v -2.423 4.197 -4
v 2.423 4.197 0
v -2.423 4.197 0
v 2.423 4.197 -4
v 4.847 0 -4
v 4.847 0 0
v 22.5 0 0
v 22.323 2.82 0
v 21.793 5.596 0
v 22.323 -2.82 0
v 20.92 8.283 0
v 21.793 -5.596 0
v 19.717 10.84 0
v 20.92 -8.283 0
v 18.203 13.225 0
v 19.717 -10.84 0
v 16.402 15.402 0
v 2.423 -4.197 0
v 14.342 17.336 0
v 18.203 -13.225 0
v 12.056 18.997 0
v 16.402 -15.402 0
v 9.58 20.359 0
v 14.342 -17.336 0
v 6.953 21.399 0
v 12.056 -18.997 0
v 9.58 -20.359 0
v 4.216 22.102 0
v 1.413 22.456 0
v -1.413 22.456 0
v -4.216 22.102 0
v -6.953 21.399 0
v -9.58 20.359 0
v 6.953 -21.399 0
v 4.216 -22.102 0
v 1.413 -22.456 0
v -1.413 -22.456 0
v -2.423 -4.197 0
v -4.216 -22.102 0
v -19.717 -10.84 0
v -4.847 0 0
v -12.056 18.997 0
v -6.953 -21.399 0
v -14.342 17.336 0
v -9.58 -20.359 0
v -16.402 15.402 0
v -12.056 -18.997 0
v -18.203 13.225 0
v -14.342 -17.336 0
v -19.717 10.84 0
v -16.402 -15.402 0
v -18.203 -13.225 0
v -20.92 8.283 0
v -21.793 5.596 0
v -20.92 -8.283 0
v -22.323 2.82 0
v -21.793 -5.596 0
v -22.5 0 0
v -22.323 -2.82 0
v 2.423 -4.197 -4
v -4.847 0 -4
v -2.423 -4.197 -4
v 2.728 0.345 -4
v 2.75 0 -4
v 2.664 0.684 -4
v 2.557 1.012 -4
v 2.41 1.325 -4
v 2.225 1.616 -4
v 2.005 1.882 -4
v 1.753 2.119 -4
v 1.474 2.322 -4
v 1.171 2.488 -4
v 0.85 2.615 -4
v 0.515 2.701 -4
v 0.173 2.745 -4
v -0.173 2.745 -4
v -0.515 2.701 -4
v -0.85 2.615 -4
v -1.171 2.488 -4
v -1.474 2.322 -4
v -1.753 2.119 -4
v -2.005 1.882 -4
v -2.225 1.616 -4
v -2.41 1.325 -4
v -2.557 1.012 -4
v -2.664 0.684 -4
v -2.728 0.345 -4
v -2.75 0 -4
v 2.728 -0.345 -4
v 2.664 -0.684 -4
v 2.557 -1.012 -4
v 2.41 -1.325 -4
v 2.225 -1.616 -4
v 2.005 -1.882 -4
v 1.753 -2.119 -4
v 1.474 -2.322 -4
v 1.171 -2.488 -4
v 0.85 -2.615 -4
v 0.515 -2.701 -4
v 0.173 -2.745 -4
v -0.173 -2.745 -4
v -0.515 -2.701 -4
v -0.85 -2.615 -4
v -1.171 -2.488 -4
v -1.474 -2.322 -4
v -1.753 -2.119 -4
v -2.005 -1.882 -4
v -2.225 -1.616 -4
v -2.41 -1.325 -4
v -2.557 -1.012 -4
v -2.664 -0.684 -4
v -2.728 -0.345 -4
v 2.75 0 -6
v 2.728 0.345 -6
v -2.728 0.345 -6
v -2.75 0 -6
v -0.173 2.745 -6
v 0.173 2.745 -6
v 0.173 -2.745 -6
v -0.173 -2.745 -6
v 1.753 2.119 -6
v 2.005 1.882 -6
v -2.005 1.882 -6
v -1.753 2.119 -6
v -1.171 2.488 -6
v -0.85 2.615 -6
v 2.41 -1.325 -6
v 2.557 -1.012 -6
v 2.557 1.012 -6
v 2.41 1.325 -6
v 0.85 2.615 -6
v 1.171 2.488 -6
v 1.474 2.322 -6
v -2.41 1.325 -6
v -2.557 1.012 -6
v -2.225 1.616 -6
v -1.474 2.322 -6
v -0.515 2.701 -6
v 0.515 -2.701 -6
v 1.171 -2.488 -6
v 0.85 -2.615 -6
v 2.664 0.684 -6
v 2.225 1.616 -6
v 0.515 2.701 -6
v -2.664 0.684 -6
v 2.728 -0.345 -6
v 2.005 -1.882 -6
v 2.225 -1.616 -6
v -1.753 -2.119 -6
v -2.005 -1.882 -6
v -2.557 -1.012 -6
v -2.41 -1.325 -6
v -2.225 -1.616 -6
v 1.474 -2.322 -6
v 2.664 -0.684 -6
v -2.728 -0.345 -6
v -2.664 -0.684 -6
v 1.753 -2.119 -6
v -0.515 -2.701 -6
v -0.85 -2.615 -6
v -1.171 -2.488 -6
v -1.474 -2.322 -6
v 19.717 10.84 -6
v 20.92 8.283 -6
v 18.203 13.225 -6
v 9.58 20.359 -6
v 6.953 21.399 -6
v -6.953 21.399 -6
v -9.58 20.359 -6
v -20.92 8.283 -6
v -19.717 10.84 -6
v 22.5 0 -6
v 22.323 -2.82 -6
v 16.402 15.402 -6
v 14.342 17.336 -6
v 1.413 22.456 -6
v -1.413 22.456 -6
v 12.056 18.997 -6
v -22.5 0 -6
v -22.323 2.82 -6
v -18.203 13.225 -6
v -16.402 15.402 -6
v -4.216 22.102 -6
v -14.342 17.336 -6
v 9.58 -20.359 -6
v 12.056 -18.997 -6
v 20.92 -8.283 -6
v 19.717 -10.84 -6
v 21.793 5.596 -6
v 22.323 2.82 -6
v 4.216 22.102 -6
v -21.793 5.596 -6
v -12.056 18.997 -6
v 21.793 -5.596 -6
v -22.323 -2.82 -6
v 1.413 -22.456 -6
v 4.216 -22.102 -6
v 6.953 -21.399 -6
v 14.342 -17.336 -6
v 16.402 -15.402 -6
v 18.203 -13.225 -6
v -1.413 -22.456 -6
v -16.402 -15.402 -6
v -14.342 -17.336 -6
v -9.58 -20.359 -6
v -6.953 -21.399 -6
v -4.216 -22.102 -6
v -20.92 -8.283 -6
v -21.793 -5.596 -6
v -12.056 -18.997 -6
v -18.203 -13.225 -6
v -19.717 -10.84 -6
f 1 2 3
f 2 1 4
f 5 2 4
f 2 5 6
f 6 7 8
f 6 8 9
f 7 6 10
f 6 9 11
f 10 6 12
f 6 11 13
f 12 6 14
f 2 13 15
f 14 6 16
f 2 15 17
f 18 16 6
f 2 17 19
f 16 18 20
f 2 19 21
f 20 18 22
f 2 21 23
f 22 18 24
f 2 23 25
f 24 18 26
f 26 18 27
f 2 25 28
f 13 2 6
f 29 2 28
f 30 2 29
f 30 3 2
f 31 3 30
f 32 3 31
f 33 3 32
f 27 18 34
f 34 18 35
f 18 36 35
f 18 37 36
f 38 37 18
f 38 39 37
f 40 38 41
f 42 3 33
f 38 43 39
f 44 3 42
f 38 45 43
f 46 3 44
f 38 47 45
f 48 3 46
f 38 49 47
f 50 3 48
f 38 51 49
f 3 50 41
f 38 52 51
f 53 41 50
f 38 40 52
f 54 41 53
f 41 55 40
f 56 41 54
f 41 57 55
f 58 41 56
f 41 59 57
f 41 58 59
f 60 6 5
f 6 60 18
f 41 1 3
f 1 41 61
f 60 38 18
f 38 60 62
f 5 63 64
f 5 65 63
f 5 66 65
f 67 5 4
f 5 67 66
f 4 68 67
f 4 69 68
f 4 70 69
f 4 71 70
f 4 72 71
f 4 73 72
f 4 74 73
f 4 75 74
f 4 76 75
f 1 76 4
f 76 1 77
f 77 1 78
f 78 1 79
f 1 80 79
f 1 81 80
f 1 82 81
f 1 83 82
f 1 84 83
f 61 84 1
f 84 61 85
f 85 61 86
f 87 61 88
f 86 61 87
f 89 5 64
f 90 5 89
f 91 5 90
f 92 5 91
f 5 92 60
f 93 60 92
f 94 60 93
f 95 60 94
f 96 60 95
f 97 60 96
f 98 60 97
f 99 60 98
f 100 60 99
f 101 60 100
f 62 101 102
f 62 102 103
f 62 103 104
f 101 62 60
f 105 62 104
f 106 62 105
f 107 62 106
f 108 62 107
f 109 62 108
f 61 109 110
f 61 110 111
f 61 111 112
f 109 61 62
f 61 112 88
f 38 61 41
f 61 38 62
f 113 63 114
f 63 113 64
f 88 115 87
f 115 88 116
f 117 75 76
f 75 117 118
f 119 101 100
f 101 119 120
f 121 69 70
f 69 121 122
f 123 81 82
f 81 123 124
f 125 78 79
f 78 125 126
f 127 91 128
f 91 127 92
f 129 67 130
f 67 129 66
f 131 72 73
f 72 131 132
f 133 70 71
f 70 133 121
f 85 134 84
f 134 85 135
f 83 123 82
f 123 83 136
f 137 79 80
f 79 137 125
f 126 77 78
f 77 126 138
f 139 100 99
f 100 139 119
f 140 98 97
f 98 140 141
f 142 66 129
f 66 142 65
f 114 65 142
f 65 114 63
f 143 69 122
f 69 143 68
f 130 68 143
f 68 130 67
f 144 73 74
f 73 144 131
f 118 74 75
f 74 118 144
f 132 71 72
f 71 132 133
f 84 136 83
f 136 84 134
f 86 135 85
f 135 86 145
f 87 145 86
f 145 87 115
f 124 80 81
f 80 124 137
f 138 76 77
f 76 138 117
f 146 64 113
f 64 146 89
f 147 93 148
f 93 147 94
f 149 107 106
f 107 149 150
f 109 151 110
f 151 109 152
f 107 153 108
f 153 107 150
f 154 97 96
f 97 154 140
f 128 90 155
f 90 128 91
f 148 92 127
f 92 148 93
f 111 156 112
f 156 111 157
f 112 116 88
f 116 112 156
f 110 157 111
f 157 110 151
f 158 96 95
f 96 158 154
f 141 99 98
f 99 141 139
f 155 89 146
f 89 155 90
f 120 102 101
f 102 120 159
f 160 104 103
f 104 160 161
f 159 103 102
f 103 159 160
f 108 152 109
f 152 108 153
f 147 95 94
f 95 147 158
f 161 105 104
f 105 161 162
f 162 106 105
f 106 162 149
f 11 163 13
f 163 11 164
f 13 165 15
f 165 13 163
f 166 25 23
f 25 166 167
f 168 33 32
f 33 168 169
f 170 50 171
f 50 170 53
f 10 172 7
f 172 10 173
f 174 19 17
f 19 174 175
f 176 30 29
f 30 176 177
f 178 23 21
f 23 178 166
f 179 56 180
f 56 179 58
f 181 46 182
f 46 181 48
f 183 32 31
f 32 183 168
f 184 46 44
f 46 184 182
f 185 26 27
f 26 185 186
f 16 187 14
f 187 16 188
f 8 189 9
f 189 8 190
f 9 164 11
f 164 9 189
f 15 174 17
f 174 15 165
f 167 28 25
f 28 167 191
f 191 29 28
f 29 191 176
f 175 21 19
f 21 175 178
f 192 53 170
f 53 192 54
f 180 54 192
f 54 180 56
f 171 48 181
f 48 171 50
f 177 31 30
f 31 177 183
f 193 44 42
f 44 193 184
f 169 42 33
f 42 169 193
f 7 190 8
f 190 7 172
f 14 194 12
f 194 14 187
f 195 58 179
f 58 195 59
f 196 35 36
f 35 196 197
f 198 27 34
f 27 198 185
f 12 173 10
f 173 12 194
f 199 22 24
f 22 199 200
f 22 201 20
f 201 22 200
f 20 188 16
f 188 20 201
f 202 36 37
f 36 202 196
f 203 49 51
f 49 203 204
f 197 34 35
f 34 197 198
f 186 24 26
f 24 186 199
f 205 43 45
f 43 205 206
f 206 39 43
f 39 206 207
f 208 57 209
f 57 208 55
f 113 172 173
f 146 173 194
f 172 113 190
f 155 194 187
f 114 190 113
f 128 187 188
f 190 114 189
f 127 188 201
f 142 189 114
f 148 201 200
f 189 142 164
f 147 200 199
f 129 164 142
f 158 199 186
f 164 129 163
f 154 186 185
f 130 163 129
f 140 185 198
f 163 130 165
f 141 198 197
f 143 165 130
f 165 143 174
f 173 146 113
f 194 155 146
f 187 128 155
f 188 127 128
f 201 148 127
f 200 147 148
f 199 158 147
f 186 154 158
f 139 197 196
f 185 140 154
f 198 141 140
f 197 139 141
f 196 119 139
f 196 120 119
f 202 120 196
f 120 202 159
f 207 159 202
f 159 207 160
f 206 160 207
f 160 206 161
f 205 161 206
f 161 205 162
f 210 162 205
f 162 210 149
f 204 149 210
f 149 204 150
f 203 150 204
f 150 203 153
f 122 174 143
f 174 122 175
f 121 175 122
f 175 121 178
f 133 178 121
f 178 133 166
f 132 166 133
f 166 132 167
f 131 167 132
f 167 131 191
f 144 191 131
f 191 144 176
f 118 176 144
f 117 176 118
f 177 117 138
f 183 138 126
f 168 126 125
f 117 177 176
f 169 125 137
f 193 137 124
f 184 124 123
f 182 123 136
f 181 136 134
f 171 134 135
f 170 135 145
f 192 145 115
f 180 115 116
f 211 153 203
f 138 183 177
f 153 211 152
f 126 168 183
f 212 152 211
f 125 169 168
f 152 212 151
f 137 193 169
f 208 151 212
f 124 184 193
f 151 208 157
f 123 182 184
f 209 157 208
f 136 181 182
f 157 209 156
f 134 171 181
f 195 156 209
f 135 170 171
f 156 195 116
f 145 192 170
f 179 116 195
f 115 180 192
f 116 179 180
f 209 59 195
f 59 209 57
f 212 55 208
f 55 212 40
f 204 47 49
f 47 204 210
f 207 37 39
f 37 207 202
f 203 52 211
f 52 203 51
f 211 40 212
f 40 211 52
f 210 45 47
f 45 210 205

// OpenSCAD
$fn = 50;


difference() {
	union() {
		translate(v = [0, 0, -6.0000000000]) {
			cylinder(h = 6.0000000000, r = 22.5000000000);
		}
	}
	union() {
		translate(v = [0, 0, 0]) {
			rotate(a = [0, 0, 0]) {
				difference() {
					union() {
						translate(v = [0, 0, -4]) {
							#linear_extrude(height = 4) {
								polygon(points = [[4.8468000000, 0.0000000000], [2.4234000000, 4.1974519271], [-2.4234000000, 4.1974519271], [-4.8468000000, 0.0000000000], [-2.4234000000, -4.1974519271], [2.4234000000, -4.1974519271]]);
							}
						}
					}
					union();
				}
			}
		}
		#translate(v = [0, 0, -100.0000000000]) {
			cylinder(h = 200, r = 2.7500000000);
		}
	}
}
